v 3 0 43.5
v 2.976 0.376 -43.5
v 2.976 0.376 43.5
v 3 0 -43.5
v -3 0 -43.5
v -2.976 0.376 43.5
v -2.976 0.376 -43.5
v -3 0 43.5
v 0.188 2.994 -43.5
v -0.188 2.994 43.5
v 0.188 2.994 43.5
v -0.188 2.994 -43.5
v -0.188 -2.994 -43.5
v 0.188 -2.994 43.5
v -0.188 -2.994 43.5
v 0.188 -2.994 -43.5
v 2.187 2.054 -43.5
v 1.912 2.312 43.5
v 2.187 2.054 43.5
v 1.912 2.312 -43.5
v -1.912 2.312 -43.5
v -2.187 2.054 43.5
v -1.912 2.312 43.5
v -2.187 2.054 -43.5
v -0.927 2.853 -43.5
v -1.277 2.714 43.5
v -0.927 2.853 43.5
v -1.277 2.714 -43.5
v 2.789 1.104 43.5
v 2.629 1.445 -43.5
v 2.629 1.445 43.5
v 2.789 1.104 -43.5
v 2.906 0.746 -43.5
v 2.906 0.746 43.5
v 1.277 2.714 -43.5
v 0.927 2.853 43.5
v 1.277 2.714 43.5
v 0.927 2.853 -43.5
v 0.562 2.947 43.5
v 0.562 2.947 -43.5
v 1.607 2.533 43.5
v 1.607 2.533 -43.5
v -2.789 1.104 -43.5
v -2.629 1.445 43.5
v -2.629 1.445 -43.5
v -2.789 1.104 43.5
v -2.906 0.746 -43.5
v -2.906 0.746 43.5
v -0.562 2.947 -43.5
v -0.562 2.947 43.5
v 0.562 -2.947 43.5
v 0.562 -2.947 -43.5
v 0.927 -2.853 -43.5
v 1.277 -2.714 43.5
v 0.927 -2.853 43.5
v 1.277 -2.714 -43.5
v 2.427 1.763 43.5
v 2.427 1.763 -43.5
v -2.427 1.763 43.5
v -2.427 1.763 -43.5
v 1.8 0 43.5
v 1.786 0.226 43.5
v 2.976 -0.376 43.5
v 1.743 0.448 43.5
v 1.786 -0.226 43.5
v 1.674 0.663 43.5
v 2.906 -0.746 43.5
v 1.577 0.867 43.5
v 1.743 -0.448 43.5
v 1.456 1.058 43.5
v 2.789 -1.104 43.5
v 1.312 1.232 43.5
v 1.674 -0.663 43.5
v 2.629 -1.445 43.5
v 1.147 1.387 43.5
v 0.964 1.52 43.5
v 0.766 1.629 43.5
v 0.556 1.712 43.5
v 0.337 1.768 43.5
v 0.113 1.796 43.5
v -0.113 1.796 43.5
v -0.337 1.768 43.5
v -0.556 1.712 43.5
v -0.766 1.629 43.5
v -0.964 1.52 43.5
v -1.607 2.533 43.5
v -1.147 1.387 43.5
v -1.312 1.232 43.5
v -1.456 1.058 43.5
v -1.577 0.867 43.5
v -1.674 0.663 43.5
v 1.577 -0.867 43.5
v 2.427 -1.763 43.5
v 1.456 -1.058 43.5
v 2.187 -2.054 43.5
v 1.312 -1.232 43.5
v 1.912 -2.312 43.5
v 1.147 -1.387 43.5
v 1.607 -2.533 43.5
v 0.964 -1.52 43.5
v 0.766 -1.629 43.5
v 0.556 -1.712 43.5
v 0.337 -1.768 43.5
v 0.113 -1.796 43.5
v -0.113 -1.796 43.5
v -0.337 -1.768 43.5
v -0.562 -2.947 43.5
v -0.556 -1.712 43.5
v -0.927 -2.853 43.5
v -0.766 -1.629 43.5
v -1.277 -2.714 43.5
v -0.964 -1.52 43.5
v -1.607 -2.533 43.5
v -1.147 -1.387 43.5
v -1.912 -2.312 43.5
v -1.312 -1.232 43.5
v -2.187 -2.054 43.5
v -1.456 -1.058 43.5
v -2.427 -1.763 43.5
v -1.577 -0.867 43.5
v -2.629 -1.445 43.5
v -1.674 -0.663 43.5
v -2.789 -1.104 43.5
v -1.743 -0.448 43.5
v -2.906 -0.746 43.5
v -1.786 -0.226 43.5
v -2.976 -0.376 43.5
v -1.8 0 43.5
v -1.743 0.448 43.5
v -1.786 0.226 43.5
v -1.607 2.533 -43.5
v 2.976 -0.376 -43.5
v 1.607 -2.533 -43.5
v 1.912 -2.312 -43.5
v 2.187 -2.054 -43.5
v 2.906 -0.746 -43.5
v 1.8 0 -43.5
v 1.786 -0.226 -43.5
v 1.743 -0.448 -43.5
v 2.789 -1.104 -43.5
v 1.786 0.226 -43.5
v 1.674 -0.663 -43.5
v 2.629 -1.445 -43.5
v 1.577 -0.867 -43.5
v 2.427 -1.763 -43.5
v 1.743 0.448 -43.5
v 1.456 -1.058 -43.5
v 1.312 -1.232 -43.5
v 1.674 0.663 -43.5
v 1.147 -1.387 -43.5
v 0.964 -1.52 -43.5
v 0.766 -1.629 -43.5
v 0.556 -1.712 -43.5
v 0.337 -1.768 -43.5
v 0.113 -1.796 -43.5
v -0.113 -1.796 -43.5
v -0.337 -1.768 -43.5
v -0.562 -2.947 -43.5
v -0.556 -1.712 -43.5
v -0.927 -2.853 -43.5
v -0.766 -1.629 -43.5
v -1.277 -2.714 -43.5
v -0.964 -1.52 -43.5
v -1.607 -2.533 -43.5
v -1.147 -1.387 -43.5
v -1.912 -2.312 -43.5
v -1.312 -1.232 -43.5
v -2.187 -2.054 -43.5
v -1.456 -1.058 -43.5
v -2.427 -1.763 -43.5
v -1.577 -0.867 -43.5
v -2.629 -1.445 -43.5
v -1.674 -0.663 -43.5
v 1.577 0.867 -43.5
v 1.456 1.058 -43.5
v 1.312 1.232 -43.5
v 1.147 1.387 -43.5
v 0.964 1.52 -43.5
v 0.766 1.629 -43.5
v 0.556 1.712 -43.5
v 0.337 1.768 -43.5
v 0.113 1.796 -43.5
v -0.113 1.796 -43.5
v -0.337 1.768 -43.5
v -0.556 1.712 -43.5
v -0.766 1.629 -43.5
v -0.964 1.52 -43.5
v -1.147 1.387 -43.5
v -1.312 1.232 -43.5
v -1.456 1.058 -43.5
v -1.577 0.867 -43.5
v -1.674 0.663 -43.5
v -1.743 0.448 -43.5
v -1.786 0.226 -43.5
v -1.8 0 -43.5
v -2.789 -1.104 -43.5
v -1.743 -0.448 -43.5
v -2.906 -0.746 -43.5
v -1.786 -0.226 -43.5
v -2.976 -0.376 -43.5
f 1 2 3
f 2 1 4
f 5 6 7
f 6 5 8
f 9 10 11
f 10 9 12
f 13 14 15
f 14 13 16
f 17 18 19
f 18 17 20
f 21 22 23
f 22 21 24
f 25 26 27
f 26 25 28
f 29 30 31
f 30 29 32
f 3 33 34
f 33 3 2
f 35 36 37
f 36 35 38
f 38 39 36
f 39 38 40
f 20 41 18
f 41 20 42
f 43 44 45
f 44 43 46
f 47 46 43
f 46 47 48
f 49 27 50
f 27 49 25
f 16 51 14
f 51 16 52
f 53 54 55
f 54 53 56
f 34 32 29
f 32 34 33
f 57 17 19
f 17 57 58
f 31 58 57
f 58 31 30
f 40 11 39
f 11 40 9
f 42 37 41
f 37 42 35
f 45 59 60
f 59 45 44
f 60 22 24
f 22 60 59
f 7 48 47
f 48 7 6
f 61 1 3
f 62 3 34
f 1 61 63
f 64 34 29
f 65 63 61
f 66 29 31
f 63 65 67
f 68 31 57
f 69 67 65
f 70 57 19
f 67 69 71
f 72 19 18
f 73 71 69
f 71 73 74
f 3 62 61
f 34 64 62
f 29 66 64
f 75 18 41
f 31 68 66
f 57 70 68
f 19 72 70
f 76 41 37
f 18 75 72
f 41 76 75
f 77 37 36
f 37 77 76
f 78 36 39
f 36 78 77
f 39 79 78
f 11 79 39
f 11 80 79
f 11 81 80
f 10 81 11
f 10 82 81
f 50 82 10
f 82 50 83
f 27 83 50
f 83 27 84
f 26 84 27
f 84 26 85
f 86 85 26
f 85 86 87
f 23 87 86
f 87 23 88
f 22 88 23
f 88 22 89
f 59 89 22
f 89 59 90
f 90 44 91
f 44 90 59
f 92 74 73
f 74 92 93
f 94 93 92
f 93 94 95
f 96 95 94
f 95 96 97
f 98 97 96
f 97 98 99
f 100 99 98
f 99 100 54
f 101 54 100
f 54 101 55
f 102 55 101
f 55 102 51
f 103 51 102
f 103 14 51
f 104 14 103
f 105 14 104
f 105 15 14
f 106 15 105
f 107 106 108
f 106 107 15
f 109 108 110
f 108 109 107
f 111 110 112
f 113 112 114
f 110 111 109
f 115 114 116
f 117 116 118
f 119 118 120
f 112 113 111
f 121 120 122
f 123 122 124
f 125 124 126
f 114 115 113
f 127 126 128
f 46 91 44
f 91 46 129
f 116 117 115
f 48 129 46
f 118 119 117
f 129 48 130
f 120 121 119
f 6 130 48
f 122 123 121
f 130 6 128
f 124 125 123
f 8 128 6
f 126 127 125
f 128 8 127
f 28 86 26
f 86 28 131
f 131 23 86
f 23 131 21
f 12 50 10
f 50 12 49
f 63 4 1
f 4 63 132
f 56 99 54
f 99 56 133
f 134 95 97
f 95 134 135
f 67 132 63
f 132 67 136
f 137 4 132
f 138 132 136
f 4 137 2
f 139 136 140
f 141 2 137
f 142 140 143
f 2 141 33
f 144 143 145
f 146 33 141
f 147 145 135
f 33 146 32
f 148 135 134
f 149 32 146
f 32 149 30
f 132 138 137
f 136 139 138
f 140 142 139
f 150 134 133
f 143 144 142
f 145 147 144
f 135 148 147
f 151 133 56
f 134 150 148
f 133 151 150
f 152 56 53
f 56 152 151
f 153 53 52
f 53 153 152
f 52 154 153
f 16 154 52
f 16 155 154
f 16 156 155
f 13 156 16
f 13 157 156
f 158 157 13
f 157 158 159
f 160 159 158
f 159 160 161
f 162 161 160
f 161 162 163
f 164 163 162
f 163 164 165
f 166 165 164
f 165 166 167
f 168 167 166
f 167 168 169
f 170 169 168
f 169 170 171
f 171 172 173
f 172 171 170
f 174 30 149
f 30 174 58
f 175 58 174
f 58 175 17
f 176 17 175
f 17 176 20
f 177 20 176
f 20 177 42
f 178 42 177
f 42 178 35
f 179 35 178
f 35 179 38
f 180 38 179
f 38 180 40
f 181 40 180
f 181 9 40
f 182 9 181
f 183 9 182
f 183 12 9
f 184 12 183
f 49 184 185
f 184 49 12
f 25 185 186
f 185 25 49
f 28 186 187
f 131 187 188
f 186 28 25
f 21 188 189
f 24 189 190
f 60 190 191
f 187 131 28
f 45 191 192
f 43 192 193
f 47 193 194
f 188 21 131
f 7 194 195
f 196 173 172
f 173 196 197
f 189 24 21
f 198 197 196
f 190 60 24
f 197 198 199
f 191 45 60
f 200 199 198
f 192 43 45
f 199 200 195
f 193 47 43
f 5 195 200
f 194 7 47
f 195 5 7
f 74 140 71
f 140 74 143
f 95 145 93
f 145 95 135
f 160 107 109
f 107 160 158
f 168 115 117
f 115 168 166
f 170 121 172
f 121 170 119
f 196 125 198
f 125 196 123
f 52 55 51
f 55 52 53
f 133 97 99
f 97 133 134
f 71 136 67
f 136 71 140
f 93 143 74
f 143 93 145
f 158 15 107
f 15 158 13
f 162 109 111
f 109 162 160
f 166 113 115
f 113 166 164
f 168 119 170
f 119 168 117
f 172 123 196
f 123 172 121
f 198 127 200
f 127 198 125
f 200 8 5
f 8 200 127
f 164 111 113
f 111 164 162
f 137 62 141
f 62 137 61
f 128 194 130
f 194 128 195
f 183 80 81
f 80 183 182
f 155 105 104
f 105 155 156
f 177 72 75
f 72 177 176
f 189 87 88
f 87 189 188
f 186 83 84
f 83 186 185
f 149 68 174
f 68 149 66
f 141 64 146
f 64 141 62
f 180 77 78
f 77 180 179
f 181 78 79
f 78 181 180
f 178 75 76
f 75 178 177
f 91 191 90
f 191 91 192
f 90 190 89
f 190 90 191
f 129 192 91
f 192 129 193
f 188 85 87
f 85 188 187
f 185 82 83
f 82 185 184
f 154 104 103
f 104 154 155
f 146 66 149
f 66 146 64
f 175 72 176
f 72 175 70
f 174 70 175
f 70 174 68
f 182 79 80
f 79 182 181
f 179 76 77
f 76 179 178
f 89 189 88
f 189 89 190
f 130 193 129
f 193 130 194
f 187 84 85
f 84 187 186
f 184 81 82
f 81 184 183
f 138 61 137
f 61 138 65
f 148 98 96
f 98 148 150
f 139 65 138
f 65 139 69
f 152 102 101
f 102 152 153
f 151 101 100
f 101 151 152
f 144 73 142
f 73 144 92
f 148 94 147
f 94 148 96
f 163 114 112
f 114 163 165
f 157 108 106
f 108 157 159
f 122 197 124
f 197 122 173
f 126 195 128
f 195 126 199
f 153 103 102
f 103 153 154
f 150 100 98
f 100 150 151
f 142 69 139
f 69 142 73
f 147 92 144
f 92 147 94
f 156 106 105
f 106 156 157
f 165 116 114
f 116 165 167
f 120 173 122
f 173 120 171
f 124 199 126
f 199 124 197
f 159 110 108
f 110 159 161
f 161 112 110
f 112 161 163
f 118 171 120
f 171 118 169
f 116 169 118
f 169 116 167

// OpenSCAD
$fn = 50;


difference() {
	union() {
		translate(v = [0, 0, -43.5000000000]) {
			cylinder(h = 87, r = 3.0000000000);
		}
	}
	union() {
		translate(v = [0, 0, -100.0000000000]) {
			cylinder(h = 200, r = 1.8000000000);
		}
	}
}
